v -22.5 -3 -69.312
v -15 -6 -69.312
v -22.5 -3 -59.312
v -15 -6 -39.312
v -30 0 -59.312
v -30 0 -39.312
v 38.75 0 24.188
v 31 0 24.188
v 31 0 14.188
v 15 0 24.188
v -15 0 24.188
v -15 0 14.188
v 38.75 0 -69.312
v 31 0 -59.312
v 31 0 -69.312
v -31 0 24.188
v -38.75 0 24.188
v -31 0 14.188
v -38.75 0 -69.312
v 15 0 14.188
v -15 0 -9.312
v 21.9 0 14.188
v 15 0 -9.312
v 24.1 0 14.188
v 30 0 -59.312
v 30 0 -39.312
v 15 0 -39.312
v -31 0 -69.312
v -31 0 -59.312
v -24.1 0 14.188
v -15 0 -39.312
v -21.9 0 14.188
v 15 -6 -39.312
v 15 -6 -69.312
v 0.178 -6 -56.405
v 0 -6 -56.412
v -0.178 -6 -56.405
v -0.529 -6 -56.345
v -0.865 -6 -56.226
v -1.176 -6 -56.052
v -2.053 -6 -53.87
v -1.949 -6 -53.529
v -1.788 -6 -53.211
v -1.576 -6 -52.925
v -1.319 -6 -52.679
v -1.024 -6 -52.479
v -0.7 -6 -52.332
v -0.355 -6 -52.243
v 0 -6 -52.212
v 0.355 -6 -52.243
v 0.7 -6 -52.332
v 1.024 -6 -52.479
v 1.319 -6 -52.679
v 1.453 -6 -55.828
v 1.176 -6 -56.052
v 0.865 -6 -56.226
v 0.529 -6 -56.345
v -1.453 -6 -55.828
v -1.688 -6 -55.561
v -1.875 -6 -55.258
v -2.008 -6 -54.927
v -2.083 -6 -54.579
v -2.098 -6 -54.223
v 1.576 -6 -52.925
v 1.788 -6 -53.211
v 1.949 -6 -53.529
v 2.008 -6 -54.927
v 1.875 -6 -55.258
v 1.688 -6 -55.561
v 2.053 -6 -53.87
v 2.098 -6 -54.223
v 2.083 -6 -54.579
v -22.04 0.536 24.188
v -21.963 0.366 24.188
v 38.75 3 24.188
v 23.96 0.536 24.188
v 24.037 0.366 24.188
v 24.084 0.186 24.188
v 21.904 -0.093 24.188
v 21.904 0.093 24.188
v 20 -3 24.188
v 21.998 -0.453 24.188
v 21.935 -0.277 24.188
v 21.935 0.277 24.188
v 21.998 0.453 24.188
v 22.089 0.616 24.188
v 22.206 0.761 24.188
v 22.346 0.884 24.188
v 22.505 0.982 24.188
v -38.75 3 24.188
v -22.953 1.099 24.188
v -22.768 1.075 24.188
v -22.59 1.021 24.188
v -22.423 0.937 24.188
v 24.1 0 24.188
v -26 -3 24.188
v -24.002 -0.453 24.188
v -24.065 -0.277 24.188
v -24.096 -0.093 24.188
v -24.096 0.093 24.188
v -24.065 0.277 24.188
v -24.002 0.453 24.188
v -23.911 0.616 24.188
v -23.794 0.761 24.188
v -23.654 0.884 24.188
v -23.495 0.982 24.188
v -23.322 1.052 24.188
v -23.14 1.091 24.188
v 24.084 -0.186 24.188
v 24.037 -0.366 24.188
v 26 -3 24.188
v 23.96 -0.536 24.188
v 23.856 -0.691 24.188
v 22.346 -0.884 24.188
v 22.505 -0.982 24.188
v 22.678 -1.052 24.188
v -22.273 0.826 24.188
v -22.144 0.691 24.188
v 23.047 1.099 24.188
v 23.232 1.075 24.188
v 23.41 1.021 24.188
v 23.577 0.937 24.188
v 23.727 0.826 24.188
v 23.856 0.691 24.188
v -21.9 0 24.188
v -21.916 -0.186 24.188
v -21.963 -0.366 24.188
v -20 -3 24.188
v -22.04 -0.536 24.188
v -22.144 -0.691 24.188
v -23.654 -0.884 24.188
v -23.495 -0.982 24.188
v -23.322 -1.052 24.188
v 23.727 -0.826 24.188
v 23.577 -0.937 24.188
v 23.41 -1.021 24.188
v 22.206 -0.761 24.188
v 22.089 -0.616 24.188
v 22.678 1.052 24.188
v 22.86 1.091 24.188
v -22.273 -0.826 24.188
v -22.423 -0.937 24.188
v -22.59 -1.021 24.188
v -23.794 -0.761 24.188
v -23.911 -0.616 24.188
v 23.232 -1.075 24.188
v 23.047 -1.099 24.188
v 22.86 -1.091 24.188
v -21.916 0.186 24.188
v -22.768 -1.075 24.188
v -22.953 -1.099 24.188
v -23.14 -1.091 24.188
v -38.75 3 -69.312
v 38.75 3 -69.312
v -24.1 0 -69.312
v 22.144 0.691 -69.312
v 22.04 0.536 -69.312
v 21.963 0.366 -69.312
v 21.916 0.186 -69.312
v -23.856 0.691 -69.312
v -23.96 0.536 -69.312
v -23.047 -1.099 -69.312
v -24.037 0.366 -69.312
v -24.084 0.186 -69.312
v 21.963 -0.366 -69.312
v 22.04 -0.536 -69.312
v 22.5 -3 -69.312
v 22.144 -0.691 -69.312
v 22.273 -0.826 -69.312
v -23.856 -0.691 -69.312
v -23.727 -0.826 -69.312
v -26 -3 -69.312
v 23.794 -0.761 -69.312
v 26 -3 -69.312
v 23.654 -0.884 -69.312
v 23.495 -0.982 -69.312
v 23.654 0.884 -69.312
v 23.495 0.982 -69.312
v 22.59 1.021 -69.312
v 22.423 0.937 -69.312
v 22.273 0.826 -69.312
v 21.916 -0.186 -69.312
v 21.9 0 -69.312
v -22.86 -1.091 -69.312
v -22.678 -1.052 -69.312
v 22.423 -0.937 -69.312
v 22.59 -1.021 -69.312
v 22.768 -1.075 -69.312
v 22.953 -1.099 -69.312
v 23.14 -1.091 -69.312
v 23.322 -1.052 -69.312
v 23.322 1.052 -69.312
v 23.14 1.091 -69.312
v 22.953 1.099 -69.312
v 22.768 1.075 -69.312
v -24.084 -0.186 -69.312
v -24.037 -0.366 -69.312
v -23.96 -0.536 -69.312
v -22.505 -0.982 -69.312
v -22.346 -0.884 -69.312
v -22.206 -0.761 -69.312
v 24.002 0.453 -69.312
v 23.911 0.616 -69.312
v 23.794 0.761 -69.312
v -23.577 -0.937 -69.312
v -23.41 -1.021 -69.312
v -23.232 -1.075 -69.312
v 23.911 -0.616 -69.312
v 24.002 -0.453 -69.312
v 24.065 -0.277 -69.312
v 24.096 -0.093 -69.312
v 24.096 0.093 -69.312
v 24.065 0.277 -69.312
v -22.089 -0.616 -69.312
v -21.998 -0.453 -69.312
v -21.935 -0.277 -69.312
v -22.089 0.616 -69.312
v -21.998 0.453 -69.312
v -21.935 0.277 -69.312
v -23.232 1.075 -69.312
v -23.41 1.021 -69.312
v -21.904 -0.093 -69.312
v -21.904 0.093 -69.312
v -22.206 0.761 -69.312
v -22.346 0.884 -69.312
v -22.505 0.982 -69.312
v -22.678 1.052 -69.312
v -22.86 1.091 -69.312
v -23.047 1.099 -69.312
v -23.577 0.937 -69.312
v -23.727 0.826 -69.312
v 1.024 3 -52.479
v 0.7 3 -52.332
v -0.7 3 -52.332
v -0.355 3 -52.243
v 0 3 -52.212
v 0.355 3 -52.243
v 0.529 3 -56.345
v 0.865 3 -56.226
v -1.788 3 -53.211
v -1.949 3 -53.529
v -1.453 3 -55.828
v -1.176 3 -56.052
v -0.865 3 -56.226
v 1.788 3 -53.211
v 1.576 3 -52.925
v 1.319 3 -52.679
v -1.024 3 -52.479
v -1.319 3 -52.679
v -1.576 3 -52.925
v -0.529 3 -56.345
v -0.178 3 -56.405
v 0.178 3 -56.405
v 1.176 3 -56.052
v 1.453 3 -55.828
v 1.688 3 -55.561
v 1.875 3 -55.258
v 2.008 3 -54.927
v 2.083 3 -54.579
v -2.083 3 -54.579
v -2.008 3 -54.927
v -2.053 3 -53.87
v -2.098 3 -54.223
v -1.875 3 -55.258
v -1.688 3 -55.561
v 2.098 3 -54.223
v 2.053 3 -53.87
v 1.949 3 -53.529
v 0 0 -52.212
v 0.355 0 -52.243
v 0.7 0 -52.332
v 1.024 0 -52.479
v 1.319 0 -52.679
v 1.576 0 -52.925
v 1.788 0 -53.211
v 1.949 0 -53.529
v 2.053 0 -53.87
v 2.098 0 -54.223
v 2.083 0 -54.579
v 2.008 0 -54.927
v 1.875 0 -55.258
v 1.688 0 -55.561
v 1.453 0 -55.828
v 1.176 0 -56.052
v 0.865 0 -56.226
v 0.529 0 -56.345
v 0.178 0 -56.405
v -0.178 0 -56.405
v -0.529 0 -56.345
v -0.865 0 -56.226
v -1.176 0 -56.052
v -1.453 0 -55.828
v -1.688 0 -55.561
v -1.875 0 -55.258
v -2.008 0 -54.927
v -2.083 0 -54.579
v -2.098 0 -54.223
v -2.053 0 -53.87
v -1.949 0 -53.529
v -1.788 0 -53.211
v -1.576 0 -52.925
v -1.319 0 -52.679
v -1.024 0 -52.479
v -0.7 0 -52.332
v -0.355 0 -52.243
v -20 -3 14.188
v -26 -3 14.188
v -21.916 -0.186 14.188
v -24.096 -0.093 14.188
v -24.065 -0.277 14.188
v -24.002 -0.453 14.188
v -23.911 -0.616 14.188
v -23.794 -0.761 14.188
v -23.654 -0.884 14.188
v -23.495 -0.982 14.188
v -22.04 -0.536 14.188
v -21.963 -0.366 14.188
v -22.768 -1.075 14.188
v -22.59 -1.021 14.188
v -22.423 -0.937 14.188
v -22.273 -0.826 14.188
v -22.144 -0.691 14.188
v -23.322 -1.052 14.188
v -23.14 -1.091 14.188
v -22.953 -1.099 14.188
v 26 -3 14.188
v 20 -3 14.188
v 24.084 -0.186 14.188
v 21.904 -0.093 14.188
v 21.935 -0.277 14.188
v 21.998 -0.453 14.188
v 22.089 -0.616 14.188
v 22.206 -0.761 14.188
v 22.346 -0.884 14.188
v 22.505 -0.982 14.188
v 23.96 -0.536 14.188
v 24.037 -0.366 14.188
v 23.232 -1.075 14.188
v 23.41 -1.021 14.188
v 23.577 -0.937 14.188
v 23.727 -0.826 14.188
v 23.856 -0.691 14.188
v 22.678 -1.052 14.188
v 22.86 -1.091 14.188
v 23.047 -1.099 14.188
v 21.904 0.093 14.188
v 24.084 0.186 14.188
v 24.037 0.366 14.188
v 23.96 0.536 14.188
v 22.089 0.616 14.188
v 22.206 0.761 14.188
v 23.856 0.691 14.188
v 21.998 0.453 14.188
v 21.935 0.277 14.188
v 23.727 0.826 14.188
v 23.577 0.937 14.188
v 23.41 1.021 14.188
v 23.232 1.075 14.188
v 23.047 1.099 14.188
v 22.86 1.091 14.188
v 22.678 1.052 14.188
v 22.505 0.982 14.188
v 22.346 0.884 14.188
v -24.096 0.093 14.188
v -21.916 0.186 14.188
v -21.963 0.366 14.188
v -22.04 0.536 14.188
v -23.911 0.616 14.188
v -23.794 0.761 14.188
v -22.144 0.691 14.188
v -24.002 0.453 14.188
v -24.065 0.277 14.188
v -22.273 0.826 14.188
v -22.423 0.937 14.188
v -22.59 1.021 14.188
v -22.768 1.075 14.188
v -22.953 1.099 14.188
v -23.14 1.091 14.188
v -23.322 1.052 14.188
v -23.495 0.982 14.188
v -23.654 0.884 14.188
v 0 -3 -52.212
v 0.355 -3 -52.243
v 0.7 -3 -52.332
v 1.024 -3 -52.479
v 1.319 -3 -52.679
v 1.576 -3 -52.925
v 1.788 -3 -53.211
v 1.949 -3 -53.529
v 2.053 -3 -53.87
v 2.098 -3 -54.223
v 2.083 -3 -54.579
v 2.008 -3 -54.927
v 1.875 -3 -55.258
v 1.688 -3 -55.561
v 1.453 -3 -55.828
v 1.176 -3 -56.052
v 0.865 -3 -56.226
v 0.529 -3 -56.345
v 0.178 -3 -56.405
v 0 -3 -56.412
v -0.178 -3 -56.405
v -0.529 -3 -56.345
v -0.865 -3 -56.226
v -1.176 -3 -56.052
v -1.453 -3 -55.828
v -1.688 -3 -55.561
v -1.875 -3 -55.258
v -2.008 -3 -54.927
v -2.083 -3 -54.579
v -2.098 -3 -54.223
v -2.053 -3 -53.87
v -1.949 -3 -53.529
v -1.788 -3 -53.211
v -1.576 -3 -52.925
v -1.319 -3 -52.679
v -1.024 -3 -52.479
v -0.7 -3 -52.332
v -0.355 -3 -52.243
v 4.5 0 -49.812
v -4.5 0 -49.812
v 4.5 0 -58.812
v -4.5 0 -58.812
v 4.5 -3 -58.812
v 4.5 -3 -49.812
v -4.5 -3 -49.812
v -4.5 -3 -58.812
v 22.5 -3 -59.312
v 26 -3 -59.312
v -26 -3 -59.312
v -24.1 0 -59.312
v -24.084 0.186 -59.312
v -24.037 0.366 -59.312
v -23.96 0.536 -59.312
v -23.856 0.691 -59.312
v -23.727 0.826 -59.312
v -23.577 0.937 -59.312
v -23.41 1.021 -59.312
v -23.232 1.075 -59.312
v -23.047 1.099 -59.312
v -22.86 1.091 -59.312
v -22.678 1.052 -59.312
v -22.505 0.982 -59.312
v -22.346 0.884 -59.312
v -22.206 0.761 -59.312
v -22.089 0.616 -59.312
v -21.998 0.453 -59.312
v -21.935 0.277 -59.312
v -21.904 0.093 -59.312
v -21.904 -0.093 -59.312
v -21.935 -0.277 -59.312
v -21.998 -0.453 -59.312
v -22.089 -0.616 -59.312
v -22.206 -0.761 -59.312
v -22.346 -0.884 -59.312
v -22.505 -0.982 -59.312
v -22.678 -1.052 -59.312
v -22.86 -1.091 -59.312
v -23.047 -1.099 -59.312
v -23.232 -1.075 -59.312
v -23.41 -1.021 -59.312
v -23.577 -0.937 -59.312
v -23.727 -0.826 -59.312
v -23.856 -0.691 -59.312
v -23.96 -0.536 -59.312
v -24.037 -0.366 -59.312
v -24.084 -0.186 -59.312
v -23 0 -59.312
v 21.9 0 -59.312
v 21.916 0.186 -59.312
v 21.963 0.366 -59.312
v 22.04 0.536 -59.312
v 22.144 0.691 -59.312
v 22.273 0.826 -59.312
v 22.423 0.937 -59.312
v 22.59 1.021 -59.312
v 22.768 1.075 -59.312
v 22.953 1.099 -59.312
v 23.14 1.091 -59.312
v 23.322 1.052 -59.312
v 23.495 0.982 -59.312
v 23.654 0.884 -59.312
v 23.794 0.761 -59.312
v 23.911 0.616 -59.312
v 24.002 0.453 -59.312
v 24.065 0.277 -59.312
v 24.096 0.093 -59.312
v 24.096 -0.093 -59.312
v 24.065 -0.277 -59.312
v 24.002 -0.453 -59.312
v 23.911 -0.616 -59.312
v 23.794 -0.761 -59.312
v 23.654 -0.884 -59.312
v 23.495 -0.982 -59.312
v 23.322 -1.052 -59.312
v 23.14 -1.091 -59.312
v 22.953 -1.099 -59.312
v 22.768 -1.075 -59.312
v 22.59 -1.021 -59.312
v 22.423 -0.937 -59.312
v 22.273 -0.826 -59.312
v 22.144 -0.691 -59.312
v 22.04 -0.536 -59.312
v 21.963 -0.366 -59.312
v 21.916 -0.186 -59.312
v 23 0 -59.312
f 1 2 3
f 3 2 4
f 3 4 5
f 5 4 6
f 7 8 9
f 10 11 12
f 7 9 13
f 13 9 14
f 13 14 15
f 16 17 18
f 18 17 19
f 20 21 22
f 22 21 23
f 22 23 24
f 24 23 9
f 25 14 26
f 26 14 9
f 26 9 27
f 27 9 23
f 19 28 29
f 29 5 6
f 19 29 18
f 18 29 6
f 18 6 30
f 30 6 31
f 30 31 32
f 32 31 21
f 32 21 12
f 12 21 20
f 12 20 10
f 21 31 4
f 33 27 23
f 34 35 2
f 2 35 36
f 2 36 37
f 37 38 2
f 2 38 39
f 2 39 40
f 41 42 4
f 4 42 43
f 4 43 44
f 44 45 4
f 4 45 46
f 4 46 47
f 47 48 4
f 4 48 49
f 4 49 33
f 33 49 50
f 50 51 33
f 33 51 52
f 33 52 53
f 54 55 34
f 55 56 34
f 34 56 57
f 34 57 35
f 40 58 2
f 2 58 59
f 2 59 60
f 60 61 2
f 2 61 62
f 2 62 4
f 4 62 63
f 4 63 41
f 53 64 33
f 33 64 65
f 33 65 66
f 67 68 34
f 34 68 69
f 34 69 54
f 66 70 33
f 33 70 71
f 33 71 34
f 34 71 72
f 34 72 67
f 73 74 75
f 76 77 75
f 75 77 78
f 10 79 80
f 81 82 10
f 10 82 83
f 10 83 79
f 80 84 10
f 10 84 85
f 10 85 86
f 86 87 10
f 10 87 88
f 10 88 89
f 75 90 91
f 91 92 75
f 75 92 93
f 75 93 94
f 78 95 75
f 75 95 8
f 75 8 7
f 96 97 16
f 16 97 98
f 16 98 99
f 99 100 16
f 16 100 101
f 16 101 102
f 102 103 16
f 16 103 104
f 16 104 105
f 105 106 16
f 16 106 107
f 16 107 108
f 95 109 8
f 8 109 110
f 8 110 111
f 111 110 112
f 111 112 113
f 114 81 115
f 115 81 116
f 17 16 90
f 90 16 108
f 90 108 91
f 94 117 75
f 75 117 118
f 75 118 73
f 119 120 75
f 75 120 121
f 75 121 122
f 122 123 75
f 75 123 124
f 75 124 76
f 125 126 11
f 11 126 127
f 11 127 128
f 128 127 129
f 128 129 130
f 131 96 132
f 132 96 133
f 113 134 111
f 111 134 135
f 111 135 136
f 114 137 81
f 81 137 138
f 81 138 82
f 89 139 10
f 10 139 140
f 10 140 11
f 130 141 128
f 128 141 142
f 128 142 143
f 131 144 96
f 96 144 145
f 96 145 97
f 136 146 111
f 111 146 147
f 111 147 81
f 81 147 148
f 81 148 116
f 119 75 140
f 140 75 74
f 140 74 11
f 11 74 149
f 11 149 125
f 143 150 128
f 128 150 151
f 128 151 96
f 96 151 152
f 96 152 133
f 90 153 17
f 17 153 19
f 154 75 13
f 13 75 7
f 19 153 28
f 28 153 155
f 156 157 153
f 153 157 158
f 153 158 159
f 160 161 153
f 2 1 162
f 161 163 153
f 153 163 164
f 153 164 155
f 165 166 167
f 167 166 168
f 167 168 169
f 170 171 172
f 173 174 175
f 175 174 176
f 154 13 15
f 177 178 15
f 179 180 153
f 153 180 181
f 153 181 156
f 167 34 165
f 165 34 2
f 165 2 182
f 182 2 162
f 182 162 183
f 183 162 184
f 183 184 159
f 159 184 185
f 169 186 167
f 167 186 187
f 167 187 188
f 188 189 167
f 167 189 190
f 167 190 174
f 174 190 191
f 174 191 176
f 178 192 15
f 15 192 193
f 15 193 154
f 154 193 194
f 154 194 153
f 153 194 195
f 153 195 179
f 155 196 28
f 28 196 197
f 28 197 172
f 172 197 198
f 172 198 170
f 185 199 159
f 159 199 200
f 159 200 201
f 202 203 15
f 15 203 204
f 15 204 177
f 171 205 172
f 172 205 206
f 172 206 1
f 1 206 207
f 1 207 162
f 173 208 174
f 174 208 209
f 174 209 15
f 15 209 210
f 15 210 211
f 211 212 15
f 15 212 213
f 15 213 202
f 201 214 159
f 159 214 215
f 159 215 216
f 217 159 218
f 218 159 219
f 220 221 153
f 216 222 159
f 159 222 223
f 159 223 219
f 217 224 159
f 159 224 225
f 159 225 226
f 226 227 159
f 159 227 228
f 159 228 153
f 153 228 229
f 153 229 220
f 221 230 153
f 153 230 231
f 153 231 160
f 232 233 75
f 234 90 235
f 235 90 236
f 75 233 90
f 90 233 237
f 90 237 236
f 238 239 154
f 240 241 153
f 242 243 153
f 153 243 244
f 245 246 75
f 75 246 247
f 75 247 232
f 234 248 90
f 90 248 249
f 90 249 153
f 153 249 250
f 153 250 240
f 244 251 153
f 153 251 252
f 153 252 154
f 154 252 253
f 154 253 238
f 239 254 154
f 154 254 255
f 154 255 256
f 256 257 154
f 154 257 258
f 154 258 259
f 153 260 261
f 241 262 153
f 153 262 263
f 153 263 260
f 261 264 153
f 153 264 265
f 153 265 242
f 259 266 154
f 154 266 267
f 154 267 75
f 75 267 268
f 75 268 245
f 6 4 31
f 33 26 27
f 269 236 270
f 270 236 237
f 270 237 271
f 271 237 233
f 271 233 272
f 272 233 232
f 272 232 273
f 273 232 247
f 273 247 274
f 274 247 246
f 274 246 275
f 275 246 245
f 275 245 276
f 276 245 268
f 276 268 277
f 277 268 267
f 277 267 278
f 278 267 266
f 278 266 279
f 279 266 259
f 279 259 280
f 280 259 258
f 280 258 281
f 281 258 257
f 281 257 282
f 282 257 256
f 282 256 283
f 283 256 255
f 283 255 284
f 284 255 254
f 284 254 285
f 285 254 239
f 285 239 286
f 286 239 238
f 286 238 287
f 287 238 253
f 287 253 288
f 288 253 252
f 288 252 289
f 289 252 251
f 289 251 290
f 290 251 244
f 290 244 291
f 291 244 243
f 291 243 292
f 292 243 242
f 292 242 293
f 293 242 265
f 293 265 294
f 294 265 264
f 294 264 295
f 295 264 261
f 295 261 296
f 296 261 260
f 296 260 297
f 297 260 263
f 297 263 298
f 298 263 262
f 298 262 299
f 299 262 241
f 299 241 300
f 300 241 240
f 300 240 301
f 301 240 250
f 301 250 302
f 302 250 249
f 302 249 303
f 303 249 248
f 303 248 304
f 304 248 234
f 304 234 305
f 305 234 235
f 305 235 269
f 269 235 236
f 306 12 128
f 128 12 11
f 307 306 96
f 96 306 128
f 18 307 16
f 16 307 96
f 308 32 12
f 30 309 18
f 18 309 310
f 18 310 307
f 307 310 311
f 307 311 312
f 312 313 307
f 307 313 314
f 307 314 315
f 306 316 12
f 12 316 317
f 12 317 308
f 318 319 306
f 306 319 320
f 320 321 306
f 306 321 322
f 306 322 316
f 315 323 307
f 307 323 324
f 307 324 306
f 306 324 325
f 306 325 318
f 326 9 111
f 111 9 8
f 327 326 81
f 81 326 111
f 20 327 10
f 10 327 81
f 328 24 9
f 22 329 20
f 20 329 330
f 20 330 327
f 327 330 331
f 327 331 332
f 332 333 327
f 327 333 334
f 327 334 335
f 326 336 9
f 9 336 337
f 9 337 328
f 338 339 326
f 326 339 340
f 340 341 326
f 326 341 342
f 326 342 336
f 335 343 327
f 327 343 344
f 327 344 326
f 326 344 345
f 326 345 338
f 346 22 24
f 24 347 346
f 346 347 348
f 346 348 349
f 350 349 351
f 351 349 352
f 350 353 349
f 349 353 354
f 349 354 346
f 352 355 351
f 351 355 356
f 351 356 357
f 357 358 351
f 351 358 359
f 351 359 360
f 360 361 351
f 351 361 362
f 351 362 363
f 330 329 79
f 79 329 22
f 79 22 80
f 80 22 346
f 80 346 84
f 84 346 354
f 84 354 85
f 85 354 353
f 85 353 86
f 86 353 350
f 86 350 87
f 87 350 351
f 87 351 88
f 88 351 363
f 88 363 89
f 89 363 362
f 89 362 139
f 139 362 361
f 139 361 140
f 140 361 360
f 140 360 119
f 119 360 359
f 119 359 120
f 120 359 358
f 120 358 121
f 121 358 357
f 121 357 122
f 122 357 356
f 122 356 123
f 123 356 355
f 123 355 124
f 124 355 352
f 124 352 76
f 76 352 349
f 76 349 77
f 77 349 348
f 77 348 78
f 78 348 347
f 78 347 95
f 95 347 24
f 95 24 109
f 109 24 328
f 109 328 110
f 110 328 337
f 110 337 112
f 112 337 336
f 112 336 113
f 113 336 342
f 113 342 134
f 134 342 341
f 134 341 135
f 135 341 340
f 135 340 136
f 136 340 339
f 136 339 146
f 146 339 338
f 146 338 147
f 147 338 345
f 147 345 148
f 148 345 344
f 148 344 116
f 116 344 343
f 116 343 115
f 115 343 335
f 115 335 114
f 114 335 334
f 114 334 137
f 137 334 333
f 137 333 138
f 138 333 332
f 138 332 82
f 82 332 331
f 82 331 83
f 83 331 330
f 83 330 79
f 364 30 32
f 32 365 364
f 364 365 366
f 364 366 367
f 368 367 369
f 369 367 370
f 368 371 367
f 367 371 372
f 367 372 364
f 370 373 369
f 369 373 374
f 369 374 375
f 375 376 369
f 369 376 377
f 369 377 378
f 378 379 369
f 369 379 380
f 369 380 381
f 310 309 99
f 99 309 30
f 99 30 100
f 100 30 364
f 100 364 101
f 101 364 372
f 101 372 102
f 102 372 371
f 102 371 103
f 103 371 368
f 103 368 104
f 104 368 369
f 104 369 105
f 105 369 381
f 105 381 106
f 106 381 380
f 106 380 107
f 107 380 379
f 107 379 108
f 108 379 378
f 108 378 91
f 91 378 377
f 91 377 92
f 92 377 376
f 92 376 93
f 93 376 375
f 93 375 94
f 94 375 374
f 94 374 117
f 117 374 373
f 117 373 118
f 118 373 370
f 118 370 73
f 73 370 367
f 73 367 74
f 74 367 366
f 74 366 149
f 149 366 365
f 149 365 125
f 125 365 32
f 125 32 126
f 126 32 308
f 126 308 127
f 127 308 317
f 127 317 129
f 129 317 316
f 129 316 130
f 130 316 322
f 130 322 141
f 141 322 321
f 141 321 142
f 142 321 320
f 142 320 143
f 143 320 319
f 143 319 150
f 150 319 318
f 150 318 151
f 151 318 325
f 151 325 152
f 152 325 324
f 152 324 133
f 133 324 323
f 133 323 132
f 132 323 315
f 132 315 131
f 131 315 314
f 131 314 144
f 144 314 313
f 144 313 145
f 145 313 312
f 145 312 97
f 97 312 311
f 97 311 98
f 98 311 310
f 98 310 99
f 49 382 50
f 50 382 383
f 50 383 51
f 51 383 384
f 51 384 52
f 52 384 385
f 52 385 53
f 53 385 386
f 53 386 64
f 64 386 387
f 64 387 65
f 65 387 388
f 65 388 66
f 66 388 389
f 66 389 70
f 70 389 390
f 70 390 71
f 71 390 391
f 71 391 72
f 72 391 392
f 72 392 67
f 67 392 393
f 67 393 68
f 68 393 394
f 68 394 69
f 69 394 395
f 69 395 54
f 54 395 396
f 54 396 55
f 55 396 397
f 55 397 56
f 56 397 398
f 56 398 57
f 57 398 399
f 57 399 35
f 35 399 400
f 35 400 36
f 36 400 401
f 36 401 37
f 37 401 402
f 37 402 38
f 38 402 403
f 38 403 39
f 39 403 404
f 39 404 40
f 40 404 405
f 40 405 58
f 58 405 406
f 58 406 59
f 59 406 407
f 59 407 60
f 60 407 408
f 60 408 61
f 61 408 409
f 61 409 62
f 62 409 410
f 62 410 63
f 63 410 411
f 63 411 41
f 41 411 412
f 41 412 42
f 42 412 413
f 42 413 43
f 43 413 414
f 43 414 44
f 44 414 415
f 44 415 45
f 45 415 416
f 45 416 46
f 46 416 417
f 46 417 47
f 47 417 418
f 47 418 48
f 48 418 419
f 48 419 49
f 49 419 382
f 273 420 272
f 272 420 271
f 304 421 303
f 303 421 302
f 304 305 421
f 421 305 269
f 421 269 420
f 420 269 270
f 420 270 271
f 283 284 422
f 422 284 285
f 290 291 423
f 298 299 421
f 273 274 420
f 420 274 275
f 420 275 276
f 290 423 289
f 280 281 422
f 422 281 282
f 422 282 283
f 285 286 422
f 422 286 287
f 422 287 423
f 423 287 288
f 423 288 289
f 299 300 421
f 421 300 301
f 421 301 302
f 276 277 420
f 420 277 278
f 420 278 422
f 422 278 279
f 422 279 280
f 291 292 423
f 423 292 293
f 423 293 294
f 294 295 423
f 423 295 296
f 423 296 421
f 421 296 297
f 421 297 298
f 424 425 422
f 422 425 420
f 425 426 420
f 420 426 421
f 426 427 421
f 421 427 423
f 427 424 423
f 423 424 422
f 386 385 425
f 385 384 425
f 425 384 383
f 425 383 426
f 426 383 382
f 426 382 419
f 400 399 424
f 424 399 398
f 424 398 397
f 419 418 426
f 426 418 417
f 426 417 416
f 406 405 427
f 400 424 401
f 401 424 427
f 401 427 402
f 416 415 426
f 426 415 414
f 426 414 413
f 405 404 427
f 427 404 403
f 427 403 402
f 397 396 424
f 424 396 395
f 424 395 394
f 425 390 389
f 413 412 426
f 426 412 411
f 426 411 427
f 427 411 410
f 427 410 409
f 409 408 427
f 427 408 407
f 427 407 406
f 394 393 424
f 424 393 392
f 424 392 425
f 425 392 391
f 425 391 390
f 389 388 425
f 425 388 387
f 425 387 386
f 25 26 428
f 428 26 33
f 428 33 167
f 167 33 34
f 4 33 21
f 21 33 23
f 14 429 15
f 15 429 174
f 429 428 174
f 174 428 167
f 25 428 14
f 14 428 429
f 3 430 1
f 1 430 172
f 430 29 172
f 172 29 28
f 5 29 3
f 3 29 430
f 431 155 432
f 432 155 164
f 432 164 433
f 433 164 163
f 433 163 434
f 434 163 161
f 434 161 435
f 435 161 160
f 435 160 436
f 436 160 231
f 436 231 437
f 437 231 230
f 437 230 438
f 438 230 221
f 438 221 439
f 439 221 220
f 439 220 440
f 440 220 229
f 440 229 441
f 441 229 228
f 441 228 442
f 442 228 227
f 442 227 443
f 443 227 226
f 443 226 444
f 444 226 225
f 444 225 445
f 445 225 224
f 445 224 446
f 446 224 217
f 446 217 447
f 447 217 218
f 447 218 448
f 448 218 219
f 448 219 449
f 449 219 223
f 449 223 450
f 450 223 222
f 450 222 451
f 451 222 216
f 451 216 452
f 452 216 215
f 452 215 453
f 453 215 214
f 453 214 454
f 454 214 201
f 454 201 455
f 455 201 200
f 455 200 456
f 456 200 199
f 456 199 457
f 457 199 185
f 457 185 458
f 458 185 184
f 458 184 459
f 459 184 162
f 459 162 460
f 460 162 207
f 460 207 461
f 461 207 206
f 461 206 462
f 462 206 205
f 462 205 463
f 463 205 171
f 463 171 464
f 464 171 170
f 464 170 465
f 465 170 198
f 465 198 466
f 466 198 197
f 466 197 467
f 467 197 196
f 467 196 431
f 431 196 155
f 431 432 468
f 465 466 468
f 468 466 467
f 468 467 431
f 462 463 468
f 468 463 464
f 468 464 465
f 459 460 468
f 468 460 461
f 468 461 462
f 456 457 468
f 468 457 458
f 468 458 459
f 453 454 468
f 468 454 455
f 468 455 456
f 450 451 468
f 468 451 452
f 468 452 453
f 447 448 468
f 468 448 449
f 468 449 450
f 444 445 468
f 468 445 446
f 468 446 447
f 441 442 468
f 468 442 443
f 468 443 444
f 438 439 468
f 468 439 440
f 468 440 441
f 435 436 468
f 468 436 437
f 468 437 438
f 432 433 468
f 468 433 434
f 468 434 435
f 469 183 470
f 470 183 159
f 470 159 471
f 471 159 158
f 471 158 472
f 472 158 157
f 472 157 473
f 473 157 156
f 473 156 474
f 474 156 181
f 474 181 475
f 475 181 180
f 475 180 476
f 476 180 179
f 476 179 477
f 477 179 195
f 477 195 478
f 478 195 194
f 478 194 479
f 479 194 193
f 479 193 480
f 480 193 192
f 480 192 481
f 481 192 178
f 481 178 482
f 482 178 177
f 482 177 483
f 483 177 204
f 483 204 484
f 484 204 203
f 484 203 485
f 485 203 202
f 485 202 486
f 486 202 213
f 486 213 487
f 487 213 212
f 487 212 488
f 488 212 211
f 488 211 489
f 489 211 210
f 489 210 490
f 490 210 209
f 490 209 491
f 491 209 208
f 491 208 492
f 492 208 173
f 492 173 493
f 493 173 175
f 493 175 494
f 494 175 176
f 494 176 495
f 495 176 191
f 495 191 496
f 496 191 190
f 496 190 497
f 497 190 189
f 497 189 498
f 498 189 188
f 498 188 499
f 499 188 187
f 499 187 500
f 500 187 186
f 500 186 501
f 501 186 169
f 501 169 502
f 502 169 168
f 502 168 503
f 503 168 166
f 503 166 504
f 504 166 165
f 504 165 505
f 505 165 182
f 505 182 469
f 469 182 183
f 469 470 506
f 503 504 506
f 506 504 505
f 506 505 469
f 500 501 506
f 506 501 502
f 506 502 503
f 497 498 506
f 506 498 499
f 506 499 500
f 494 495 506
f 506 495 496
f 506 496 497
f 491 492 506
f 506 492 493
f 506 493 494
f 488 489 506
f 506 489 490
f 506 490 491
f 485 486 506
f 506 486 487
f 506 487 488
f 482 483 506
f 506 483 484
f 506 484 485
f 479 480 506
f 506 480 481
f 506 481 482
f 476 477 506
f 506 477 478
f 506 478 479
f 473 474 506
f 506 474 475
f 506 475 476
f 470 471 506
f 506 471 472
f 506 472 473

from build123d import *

# Parameters (mm, degrees)
SZKIC15_W                    = 77.5
SZKIC15_H                    = 93.5
DODANIE_WYCI_GNI_CIE12_DEPTH = 3
SZKIC17_W                    = 9
SZKIC17_H                    = 9
DODANIE_WYCI_GNI_CIE15_DEPTH = 3
DODANIE_WYCI_GNI_CIE16_DEPTH = 3
SZKIC22_R                    = 2.1
WYTNIJ_WYCI_GNI_CIE10_DEPTH  = 0.5
DODANIE_WYCI_GNI_CIE17_DEPTH = 10
WYTNIJ_WYCI_GNI_CIE12_DEPTH  = 10
SZKIC29_R                    = 2.1
WYTNIJ_WYCI_GNI_CIE13_DEPTH  = 10
WYTNIJ_WYCI_GNI_CIE14_DEPTH  = 30
WYTNIJ_WYCI_GNI_CIE15_DEPTH  = 30
DODANIE_WYCI_GNI_CIE18_DEPTH = 10
WYTNIJ_WYCI_GNI_CIE16_START  = -10
SZKIC32_3_R                  = 1.1
WYTNIJ_WYCI_GNI_CIE16_DEPTH  = 10


with BuildPart() as part:
    # Szkic15 → Dodanie-wyciągnięcie12 (new body)
    with BuildSketch(Plane(origin=(0, 0, 0), x_dir=(1, 0, 0), z_dir=(0, 1, 0))):
        with Locations((0, 22.56238879)):
            Rectangle(SZKIC15_W, SZKIC15_H)
    extrude(amount=DODANIE_WYCI_GNI_CIE12_DEPTH)

    # Szkic17 → Dodanie-wyciągnięcie15 (add)
    with BuildSketch(Plane.XZ):
        Polygon((-15, -9.31238879), (15, -9.31238879), (15, -39.31238879), (30, -39.31238879), (30, -69.31238879), (15, -69.31238879), (-18.132258098, -69.31238879), (-30, -69.31238879), (-30, -39.31238879), (-15, -39.31238879), align=None)
        with Locations((0, -54.31238879)):
            Rectangle(SZKIC17_W, SZKIC17_H, mode=Mode.SUBTRACT)
    extrude(amount=DODANIE_WYCI_GNI_CIE15_DEPTH)

    # Szkic18 → Dodanie-wyciągnięcie16 (add)
    with BuildSketch(Plane.XZ.offset(3)):
        Polygon((-15, -9.31238879), (-15, -39.31238879), (-30, -39.31238879), (-30, -69.31238879), (30, -69.31238879), (30, -39.31238879), (15, -39.31238879), (15, -9.31238879), align=None)
    extrude(amount=DODANIE_WYCI_GNI_CIE16_DEPTH)

    # Szkic22 → Wytnij-wyciągnięcie10 (cut)
    with BuildSketch(Plane(origin=(0, 3, 0), x_dir=(1, 0, 0), z_dir=(0, 1, 0))):
        with Locations(Location((0, 54.31238879, 0), (0, 0, 270))):
            Circle(SZKIC22_R)
    extrude(amount=-WYTNIJ_WYCI_GNI_CIE10_DEPTH, mode=Mode.SUBTRACT)

    # Szkic27 → Dodanie-wyciągnięcie17 (add)
    with BuildSketch(Plane.XY.offset(24.18761121)):
        with BuildLine():
            Line((-24.1, 0), (-26, 0))
            Line((-26, 0), (-26, -3))
            Line((-26, -3), (-20, -3))
            Line((-20, -3), (-20, 0))
            Line((-20, 0), (-21.9, 0))
            ThreePointArc((-21.9, 0), (-23, -1.1), (-24.1, 0))
        make_face()
        with BuildLine():
            Line((-21.9, 0), (-24.1, 0))
            ThreePointArc((-24.1, 0), (-23, -1.1), (-21.9, 0))
        make_face()
        with BuildLine():
            ThreePointArc((-21.9, 0), (-23, 1.1), (-24.1, 0))
            Line((-24.1, 0), (-21.9, 0))
        make_face()
        with BuildLine():
            Line((24.1, 0), (21.9, 0))
            ThreePointArc((21.9, 0), (23, -1.1), (24.1, 0))
        make_face()
        with BuildLine():
            ThreePointArc((24.1, 0), (23, 1.1), (21.9, 0))
            Line((21.9, 0), (24.1, 0))
        make_face()
        with BuildLine():
            Line((20, 0), (20, -3))
            Line((20, -3), (26, -3))
            Line((26, -3), (26, 0))
            Line((26, 0), (24.1, 0))
            ThreePointArc((24.1, 0), (23, -1.1), (21.9, 0))
            Line((21.9, 0), (20, 0))
        make_face()
        Polygon((-26, -3), (-26, 0), (-31, 0), align=None)
        Polygon((-15, 0), (-20, 0), (-20, -3), align=None)
        Polygon((20, 0), (15, 0), (20, -3), align=None)
        Polygon((26, 0), (26, -3), (31, 0), align=None)
    extrude(amount=-DODANIE_WYCI_GNI_CIE17_DEPTH)

    # Szkic27<5> → Wytnij-wyciągnięcie12 (cut)
    with BuildSketch(Plane.XY.offset(24.18761121)):
        with BuildLine():
            Line((-21.9, 0), (-24.1, 0))
            ThreePointArc((-24.1, 0), (-23, -1.1), (-21.9, 0))
        make_face()
        with BuildLine():
            ThreePointArc((-21.9, 0), (-23, 1.1), (-24.1, 0))
            Line((-24.1, 0), (-21.9, 0))
        make_face()
        with BuildLine():
            Line((24.1, 0), (21.9, 0))
            ThreePointArc((21.9, 0), (23, -1.1), (24.1, 0))
        make_face()
        with BuildLine():
            ThreePointArc((24.1, 0), (23, 1.1), (21.9, 0))
            Line((21.9, 0), (24.1, 0))
        make_face()
    extrude(amount=-WYTNIJ_WYCI_GNI_CIE12_DEPTH, mode=Mode.SUBTRACT)

    # Szkic29 → Wytnij-wyciągnięcie13 (cut)
    with BuildSketch(Plane(origin=(0, 2.5, 0), x_dir=(1, 0, 0), z_dir=(0, 1, 0))):
        with Locations(Location((0, 54.31238879, 0), (0, 0, 270))):
            Circle(SZKIC29_R)
    extrude(amount=-WYTNIJ_WYCI_GNI_CIE13_DEPTH, mode=Mode.SUBTRACT)

    # Szkic30 → Wytnij-wyciągnięcie14 (cut)
    with BuildSketch(Plane.XY.offset(-39.31238879)):
        Polygon((15, -6), (30, 0), (30, -6), align=None)
        Polygon((-15, -6), (-30, 0), (-30, -6), align=None)
    extrude(amount=-WYTNIJ_WYCI_GNI_CIE14_DEPTH, mode=Mode.SUBTRACT)

    # Szkic31 → Wytnij-wyciągnięcie15 (cut)
    with BuildSketch(Plane.ZY.offset(15)):
        Polygon((-39.31238879, -6), (-9.31238879, 0), (-9.31238879, -6), align=None)
    extrude(amount=-WYTNIJ_WYCI_GNI_CIE15_DEPTH, mode=Mode.SUBTRACT)

    # Szkic32 → Dodanie-wyciągnięcie18 (add)
    with BuildSketch(Plane(origin=(0, 0, -69.31238879), x_dir=(-1, 0, 0), z_dir=(0, 0, -1))):
        Polygon((-31, 0), (-26, -3), (-26, -1.6), (-30, 0), align=None)
        Polygon((-26, -3), (-22.5, -3), (-26, -1.6), align=None)
        Polygon((22.5, -3), (26, -3), (26, -1.6), align=None)
        Polygon((26, -1.6), (26, -3), (31, 0), (30, 0), align=None)
    extrude(amount=-DODANIE_WYCI_GNI_CIE18_DEPTH)

    # Szkic32<3> → Wytnij-wyciągnięcie16 (cut)
    with BuildSketch(Plane(origin=(0, 0, -69.31238879), x_dir=(-1, 0, 0), z_dir=(0, 0, -1)).offset(WYTNIJ_WYCI_GNI_CIE16_START)):
        with Locations(Location((-23, 0, 0), (0, 0, 180))):
            Circle(SZKIC32_3_R)
        with Locations(Location((23, 0, 0), (0, 0, 180))):
            Circle(SZKIC32_3_R)
    extrude(amount=WYTNIJ_WYCI_GNI_CIE16_DEPTH, mode=Mode.SUBTRACT)


solid = part.part
